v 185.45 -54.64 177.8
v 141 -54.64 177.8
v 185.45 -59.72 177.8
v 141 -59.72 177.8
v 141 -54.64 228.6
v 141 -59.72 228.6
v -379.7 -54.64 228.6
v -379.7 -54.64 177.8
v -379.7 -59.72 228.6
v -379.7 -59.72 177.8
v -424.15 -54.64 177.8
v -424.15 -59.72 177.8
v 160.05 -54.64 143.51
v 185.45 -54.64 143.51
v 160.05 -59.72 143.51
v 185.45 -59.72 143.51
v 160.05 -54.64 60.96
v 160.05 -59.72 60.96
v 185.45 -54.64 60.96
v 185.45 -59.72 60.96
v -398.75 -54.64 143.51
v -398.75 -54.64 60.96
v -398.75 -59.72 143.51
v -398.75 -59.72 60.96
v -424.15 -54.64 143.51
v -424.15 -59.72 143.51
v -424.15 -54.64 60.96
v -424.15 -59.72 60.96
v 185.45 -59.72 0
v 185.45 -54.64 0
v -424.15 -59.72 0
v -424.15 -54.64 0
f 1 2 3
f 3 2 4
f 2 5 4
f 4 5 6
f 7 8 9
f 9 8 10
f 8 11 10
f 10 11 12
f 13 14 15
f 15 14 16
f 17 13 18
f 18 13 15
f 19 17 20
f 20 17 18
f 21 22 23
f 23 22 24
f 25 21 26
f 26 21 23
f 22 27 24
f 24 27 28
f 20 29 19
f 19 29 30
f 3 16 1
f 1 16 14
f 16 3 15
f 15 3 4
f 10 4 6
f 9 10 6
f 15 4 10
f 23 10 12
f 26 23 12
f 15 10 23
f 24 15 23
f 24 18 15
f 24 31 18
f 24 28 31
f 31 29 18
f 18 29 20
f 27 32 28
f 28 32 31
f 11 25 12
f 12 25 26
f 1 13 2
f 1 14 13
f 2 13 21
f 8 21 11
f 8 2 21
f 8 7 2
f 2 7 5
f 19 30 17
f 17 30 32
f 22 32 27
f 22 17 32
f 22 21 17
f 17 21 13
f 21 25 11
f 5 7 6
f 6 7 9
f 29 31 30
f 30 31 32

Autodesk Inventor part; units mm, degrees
ref_plane "YZ Plane" through (0, 0, 0) normal (1, 0, 0) x (0, 1, 0)
ref_plane "XZ Plane" through (0, 0, 0) normal (0, 1, 0) x (-1, 0, 0)
ref_plane "XY Plane" through (0, 0, 0) normal (0, 0, 1) x (1, 0, 0)
sketch "Sketch1" plane through (0, 0, 0) normal (0, 0, 1) x (1, 0, 0)
  line L0 (185.4498, -59.7201) -> (-424.1502, -59.7201)
  line L1 (-424.1502, -59.7201) -> (-424.1502, -54.6401)
  line L2 (-424.1502, -54.6401) -> (185.4498, -54.6401)
  line L3 (185.4498, -54.6401) -> (185.4498, -59.7201)
  point P0 (0, 0)
  dimension "d0" = 609.6
  dimension "d1" = 5.08
extrude "Extrusion1" add sketch "Sketch1" along normal blind 228.6
sketch "Sketch2" plane through (-424.1502, -59.7201, 0) normal (0, -1, 0) x (1, 0, 0)
  line L0 (0, 0) -> (0, 228.6) projected
  line L1 (609.6, 0) -> (0, 0) projected
  line L2 (609.6, 0) -> (609.6, 228.6) projected
  line L3 (0, 228.6) -> (44.45, 228.6)
  line L4 (44.45, 228.6) -> (44.45, 177.8)
  line L5 (44.45, 177.8) -> (0, 177.8)
  line L6 (0, 177.8) -> (0, 228.6)
  line L7 (609.6, 228.6) -> (565.15, 228.6)
  line L8 (565.15, 228.6) -> (565.15, 177.8)
  line L9 (565.15, 177.8) -> (609.6, 177.8)
  line L10 (609.6, 177.8) -> (609.6, 228.6)
  line L11 (609.6, 60.96) -> (584.2, 60.96)
  line L12 (584.2, 60.96) -> (584.2, 143.51)
  line L13 (584.2, 143.51) -> (609.6, 143.51)
  line L14 (609.6, 143.51) -> (609.6, 60.96)
  line L15 (0, 60.96) -> (25.4, 60.96)
  line L16 (25.4, 60.96) -> (25.4, 143.51)
  line L17 (25.4, 143.51) -> (0, 143.51)
  line L18 (0, 143.51) -> (0, 60.96)
  point P0 (424.1502, 0)
  dimension "d4" = 44.45
  dimension "d5" = 50.8
  dimension "d6" = 44.45
  dimension "d7" = 50.8
  dimension "d8" = 60.96
  dimension "d9" = 60.96
  dimension "d10" = 25.4
  dimension "d11" = 25.4
  dimension "d12" = 82.55
  dimension "d13" = 82.55
extrude "Extrusion2" cut sketch "Sketch2" against normal blind 25.4
equation "\"d6\" = d4"
equation "\"d7\" = d5"
equation "\"d9\" = d8"
equation "\"d10\" = d11"
equation "\"d13\" = d12"
properties part number "ElectronicsBoardVerticalBottomDropped"
